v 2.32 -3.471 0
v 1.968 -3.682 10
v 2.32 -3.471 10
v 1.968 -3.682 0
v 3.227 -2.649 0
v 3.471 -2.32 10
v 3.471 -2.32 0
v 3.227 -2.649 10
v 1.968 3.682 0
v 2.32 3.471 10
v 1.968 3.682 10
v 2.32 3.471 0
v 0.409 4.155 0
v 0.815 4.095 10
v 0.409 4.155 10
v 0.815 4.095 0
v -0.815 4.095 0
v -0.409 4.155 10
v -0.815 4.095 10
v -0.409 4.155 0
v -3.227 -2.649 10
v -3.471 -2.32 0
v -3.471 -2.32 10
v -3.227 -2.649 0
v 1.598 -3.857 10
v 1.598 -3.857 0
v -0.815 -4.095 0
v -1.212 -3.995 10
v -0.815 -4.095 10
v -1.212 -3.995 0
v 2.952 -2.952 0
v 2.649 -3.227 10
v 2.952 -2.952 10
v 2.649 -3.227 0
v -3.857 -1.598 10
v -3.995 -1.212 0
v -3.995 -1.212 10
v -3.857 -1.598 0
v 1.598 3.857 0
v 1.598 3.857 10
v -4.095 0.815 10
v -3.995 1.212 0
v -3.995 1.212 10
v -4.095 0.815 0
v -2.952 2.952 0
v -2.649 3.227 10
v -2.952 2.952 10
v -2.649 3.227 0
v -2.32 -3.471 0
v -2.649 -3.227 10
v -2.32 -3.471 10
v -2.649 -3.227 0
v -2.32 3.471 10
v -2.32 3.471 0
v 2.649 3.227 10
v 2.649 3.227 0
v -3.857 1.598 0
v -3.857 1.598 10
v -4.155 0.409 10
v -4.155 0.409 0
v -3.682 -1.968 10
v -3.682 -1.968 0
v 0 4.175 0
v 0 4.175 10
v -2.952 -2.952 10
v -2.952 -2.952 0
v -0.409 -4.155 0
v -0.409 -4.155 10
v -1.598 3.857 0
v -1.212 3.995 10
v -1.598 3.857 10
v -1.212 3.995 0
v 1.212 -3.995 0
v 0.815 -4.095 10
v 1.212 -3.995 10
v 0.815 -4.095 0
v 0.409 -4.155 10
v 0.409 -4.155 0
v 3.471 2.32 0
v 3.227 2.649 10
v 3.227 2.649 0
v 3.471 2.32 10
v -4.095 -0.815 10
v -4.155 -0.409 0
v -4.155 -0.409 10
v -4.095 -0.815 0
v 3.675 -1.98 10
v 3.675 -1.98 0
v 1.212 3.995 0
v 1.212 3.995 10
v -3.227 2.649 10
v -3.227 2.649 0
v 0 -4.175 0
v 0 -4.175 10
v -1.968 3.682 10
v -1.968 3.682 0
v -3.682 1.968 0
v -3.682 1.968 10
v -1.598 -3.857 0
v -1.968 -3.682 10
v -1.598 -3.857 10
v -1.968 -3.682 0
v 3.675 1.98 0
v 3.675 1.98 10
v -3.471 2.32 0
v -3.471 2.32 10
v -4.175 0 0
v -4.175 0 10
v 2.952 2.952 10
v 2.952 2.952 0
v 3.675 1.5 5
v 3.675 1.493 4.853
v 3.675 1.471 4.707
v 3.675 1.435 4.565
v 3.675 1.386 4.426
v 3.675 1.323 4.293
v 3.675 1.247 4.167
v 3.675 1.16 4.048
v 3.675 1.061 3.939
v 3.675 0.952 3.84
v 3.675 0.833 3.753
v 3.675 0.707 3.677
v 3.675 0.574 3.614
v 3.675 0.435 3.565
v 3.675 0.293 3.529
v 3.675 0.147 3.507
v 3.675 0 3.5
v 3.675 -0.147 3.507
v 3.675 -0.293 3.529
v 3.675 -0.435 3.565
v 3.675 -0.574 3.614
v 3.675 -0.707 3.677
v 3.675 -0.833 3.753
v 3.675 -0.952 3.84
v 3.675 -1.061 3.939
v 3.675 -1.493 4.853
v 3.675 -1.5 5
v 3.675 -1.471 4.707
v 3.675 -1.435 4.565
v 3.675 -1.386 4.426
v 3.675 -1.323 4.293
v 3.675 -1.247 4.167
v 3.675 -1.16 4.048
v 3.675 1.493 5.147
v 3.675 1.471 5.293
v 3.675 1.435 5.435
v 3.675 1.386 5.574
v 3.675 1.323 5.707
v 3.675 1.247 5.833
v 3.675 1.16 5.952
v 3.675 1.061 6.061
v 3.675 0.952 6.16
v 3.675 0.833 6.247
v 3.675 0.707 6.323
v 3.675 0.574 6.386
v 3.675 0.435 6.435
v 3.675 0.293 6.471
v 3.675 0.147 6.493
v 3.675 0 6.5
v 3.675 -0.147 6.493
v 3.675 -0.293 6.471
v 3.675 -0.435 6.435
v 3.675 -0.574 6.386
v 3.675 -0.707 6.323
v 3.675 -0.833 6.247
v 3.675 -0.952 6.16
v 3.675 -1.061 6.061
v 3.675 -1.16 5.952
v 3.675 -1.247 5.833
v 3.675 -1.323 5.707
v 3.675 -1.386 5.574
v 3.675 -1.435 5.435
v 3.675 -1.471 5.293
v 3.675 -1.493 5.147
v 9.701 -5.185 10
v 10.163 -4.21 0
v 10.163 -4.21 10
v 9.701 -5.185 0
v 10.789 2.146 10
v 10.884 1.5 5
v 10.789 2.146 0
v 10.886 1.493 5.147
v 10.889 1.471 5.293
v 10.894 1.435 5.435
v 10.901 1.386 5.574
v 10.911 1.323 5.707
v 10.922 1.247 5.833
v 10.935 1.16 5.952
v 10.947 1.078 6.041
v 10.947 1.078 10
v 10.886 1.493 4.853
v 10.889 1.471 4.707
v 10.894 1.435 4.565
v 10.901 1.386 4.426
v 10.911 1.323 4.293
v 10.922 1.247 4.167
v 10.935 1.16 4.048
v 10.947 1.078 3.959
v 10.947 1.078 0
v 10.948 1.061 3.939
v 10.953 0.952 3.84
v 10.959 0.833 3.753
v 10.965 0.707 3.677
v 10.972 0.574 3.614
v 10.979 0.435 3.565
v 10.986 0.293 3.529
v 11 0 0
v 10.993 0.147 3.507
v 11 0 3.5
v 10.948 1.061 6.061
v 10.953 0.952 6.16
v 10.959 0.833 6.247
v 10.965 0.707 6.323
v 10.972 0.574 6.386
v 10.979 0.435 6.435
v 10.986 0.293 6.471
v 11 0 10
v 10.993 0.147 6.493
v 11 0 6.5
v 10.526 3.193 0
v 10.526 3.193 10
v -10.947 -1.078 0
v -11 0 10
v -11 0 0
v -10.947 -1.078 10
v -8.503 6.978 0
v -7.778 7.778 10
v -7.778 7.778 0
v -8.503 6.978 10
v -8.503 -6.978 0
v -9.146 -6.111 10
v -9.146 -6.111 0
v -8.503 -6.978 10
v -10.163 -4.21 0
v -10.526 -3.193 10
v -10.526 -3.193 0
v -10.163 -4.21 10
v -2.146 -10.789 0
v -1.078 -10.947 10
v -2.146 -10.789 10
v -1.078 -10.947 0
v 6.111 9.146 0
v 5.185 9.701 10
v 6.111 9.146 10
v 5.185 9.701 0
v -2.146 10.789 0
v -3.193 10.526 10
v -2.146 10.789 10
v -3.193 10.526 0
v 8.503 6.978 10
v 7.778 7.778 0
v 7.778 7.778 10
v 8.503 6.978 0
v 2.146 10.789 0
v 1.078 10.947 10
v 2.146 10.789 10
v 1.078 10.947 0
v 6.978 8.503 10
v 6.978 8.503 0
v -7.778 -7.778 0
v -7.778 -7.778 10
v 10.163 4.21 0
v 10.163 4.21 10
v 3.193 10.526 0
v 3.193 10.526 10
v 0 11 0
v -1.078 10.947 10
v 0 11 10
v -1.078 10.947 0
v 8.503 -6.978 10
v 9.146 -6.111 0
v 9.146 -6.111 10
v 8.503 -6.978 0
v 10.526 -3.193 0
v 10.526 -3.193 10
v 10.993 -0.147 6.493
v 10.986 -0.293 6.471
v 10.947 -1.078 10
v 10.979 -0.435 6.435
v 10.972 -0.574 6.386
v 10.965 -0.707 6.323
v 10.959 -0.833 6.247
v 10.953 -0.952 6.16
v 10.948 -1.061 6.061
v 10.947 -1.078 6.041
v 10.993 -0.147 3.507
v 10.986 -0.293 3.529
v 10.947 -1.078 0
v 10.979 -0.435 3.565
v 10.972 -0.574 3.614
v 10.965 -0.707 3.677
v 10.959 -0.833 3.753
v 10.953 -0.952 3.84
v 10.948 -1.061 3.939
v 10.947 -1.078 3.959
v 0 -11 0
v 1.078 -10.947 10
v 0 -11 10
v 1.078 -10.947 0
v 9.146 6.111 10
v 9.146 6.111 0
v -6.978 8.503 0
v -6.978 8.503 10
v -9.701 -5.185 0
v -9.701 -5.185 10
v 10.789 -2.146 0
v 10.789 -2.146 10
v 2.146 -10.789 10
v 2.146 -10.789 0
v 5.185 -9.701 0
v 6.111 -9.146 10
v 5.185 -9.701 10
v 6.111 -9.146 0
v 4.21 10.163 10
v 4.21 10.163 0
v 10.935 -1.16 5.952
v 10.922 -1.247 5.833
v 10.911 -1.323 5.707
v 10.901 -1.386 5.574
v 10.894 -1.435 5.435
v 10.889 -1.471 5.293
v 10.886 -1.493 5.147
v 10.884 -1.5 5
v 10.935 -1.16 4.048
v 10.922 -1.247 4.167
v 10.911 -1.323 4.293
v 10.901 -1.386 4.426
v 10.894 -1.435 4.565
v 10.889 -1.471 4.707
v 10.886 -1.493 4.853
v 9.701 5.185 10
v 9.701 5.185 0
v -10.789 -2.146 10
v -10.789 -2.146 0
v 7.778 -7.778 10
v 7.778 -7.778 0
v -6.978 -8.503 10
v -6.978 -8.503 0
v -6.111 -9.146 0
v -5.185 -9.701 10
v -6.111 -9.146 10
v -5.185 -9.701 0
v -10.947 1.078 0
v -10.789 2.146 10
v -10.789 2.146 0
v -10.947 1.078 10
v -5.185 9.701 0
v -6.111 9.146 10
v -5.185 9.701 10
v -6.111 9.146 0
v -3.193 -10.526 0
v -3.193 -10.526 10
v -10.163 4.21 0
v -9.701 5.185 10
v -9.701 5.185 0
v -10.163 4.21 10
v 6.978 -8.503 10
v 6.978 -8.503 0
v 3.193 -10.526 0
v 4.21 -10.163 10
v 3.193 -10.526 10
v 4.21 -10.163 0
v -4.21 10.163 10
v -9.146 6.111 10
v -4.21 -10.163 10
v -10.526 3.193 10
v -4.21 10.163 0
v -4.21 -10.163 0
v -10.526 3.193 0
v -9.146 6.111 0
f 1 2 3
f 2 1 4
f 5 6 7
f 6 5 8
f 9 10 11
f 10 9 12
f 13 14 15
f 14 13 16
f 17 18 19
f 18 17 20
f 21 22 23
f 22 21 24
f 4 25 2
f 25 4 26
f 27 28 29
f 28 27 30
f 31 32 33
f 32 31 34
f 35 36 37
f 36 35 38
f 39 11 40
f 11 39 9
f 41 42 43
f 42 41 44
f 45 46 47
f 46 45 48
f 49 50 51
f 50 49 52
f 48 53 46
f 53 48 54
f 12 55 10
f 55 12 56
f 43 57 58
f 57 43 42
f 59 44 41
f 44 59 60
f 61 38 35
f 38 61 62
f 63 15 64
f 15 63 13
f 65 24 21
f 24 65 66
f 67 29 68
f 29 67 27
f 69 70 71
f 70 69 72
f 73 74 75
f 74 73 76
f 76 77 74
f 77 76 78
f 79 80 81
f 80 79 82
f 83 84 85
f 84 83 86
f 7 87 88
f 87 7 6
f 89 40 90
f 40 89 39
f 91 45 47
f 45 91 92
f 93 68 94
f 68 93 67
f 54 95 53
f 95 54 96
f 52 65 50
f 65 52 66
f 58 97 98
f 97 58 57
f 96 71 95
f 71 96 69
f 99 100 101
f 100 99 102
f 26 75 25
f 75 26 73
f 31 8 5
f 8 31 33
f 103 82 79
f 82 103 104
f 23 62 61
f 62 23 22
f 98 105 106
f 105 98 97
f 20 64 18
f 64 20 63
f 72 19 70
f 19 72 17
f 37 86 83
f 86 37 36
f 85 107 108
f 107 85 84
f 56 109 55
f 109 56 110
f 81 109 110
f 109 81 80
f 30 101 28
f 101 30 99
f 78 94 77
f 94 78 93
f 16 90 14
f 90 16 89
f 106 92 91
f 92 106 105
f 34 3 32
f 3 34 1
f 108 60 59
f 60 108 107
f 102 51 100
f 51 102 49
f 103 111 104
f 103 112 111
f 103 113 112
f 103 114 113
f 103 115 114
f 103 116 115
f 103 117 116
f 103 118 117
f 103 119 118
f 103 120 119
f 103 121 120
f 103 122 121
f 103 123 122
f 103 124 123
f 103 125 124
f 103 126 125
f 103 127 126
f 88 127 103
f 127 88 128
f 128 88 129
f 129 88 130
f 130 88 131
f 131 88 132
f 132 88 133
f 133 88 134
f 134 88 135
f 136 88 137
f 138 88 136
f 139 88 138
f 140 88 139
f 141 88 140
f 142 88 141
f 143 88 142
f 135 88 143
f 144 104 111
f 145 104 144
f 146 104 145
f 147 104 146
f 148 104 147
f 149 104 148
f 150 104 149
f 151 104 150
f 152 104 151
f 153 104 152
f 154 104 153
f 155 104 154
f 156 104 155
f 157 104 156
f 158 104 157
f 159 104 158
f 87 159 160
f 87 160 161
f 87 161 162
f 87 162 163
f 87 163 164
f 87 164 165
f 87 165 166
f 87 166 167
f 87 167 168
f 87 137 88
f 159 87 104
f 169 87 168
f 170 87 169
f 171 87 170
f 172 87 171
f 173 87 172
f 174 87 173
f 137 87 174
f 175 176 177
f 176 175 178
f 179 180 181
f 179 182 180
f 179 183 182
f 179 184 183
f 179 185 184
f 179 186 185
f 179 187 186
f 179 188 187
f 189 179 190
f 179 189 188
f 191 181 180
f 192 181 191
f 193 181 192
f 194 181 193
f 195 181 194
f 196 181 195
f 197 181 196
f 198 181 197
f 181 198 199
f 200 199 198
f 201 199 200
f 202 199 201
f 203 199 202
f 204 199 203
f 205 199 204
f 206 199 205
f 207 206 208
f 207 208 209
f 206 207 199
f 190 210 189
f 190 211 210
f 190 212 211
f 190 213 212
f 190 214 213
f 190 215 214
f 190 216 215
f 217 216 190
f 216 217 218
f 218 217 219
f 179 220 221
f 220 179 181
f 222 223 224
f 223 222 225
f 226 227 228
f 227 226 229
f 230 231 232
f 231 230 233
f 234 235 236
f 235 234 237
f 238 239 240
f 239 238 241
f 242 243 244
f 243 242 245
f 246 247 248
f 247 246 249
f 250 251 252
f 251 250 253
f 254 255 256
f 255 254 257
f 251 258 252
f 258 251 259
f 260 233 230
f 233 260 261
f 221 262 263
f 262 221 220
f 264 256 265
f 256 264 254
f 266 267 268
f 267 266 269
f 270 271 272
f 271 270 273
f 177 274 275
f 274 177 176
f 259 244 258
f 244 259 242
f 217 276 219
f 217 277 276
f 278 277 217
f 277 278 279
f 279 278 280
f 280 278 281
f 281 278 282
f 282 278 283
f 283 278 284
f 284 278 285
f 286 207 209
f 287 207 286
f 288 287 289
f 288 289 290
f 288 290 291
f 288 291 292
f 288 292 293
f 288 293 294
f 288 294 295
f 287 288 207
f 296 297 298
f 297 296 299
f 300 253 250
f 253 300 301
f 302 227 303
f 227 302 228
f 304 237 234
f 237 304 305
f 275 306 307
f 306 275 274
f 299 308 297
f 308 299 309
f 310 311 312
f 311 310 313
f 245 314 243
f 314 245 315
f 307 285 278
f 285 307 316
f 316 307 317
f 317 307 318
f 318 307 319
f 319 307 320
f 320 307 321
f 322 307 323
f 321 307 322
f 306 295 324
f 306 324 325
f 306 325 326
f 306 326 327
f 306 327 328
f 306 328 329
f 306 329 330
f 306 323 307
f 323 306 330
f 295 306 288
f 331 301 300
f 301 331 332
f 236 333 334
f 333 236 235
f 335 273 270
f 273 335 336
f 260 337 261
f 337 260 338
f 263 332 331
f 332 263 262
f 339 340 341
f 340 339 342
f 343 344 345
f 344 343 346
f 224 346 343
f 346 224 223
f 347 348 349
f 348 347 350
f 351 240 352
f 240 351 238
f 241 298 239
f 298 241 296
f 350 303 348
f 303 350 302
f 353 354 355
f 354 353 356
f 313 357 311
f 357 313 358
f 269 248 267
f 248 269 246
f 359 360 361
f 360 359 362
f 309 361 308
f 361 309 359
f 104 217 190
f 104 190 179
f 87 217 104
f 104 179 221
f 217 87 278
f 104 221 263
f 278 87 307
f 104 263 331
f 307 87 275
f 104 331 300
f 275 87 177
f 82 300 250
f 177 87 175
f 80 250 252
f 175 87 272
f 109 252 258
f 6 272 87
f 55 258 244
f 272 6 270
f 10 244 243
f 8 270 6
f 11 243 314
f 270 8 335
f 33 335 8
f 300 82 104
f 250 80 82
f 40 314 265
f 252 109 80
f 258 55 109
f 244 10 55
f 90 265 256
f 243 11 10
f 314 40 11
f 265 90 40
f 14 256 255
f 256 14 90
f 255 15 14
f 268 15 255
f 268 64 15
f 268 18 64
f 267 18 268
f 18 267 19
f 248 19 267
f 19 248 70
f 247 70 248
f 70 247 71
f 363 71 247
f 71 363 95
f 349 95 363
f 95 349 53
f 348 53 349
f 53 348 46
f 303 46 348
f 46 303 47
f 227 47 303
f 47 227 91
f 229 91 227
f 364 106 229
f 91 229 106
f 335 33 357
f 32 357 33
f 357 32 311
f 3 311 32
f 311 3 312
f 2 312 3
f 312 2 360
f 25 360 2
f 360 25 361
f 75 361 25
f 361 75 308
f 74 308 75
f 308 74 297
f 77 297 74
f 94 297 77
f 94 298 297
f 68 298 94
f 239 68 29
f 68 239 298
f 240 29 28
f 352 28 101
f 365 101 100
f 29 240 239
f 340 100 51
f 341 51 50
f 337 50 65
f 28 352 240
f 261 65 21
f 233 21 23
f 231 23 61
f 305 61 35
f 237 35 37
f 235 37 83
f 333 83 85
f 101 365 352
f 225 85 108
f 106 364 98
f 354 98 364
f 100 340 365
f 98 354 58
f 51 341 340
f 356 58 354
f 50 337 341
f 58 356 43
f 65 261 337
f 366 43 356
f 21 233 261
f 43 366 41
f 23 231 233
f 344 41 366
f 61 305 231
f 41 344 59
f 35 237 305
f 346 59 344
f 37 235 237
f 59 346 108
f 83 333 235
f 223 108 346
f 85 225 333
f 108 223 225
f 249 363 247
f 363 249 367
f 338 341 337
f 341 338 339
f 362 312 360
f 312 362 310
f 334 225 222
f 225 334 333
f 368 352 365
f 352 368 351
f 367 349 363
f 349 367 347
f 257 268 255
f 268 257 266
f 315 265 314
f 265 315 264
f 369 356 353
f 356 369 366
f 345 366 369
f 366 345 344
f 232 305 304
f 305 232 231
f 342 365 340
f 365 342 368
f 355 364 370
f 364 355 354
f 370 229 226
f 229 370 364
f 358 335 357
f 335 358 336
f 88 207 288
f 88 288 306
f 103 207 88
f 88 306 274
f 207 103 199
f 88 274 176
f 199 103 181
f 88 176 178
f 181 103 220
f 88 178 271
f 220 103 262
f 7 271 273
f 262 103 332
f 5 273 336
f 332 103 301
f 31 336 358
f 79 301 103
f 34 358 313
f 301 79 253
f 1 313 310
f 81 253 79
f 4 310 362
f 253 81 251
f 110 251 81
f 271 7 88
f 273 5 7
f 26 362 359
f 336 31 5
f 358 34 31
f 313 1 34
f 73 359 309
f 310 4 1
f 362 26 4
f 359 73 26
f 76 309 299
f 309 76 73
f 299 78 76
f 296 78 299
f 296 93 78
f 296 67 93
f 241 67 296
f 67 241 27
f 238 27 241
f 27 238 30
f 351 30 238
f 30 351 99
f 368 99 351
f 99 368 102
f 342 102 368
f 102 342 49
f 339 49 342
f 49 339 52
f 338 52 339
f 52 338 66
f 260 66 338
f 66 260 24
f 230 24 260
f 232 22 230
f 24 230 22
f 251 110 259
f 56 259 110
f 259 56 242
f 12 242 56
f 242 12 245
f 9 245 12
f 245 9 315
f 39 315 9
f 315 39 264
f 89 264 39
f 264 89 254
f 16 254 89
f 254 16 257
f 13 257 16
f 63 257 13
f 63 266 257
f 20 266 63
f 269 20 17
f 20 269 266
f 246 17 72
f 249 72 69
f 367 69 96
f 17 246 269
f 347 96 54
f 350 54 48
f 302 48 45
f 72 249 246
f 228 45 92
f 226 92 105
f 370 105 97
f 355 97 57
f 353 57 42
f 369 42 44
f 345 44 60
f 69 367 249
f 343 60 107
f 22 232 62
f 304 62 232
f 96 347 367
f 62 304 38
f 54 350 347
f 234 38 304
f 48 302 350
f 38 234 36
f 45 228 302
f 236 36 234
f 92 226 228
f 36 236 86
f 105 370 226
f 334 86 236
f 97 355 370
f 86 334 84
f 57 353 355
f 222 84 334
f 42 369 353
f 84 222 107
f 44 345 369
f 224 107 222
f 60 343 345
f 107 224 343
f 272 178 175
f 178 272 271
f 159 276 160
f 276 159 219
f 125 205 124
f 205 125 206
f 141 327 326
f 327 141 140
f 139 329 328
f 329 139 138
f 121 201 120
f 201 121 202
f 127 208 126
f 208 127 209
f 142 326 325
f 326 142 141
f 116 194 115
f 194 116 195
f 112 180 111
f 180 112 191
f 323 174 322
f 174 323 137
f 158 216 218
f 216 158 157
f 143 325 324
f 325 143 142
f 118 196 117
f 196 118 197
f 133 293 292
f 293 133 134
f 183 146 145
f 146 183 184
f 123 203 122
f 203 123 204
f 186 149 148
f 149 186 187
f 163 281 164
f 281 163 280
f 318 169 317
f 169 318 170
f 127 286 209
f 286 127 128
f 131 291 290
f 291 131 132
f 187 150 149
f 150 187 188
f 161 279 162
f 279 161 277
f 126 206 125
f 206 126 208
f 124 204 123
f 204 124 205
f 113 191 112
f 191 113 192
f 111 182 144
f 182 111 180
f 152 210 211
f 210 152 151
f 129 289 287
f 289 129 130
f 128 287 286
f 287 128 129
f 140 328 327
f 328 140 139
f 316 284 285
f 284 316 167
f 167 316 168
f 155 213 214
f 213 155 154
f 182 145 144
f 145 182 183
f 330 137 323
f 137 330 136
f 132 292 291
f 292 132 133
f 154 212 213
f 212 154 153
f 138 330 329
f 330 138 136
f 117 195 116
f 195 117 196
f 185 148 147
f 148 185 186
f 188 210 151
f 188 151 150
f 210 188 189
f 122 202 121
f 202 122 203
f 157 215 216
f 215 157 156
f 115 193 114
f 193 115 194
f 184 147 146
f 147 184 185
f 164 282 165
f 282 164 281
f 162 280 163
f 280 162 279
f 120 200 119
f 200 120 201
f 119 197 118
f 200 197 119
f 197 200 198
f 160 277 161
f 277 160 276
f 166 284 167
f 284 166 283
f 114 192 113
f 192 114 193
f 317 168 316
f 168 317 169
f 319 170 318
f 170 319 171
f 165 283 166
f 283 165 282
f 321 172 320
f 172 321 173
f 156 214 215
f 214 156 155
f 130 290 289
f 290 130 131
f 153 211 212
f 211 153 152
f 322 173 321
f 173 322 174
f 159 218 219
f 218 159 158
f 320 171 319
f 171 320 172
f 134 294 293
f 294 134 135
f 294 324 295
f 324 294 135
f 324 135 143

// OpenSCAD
// file: parameters.scad
// =============================================================================
// Gen-BC — nightly 2026-10-03 (physics_scorer, honest magpylib watts)
// Clocking 0 deg (magnets N facing S / through-magnetised stack) + D-flat keyed bore + index notch + flip-symmetric braces/bolts.
// Windable 2-piece bobbin; turns = physics_scorer turns_fit; copper only between flanges.
// former_web = 3.60 mm (taller copper vs Gen-BA 2.46) — gap grows with web (honest Bz tradeoff).
// =============================================================================
topology            = "mid_rotor";

// --- Wire / winding (physics_scorer winding-fit) -------------------------------
wire_awg            = 26;
wire_od             = 0.45;     // insulated OD mm (bare 0.405)
fill_realistic      = 0.60;     // insulated-wire area / window, hand-wound layered
turns               = 114;       // = physics_scorer turns_fit (do NOT raise)
coil_former_type    = "bobbin";
coil_core_inset     = 8.40;     // radial copper build: hub = copper boundary inset by this
wind_build_axial    = 0.0;      // nothing proud of the flanges
wind_build_radial   = 0.0;

// --- Bobbin (base + lid) ---------------------------------------------------------
coil_id_r           = 28.00;    // copper boundary sector (over the magnet track)
coil_od_r           = 52.00;
span_deg            = 32.42;    // = pitch - 2*asin((wall+0.85)/coil_id_r) -> >=1.2 mm stator web
former_web          = 3.60;     // copper height between flanges
flange_t            = 0.60;
wall                = 1.00;     // flange lip beyond copper
former_bare_h       = former_web + 2 * flange_t;
coil_envelope_h     = former_bare_h + 2 * wind_build_axial;
tab_w               = 7.0;
tab_len             = 7.0;
tab_h               = former_bare_h / 2;
pin_d               = 1.9;      // 1.75 mm filament locating pin
coil_mount_r        = coil_od_r + 0.2 + 4.0;
lead_y              = 1.6;
lead_slot_w         = 0.9;
lead_groove_d       = 0.6;

// --- Gap -------------------------------------------------------------------------
run_clear           = 0.50;     // rotor face -> flange
gap_spacer_h        = run_clear + wind_build_axial;
m2m                 = coil_envelope_h + 2 * run_clear;

// --- Stator ----------------------------------------------------------------------
coil_stations       = 9;        // per stator; x2 stators
bay_clear           = 0.25;
bay_depth           = former_bare_h;
stator_back_web     = 2.0;
stator_thick        = bay_depth + stator_back_web;
stator_od           = 160.0;
shaft_clear_stator  = 14.0;     // stator is static; shaft only

// --- Rotor(s) --------------------------------------------------------------------
magnet_Br           = 1.43;     // N52
halbach_magnetisation = "diametric"; // O5x5 assist magnets MUST be DIAMETRICALLY magnetised (tangential)
rotor_b_same_axis   = true;     // same-index magnets share one axis: N faces S across the gap
large_pocket_d      = 20.3;
small_pocket_d      = 5.3;
pocket_h            = 5.2;
large_n             = 8;
R_large             = 40.0;
R_small_inner       = 26.0;
R_small_mid         = 40.0;
R_small_outer       = 56.0;
carrier_od          = 158.0;
mid_carrier_thick   = 12.0;
hub_h               = 10.0;
hub_od              = 30.0;
rotor_b_offset_deg  = 0.0;      // CLOCKING: magnets directly opposite
shaft_key           = "dflat";
dflat_depth         = 0.5;      // 8 mm shaft with 0.5 mm flat (7.5 across flat)
index_notch_d       = 3.0;

// --- Modular MAX interface (Gen-E family) -----------------------------------------
shaft_bore          = 8.35;
dflat_x             = 4.0 - dflat_depth + (shaft_bore - 8.0) / 2;
bearing_d           = 21.85;
bearing_h           = 7.2;
m3_clear            = 3.5;
bolt_r_inner        = 18.0;
bolt_n_inner        = 4;
bolt_inner_angles   = [22.5, -22.5, 157.5, 202.5];  // between poles, flip-symmetric
flange_bolt_r       = 72.0;
flange_bolt_n       = 6;
brace_r             = 68.0;
brace_d             = 4.3;
brace_n             = 4;
brace_angles        = [45, 135, 225, 315];          // flip-symmetric

spacer_pad_od       = 14.0;
spacer_pad_id       = m3_clear;
endbell_od          = 160.0;
endbell_thick       = 8.0;
endbell_shaft_clear = 10.0;
plate_max_mm        = 410;

$fn = 64;
// main file
// Gen-BC — shaft collar with D-flat bore (set screw bears on the flat); print x2
include <parameters.scad>;
$fn = 64;
// D-flat keyed bore: flat faces +X (angle 0 = magnet pocket 0 = index notch)
module dflat_bore(h) {
    intersection() {
        cylinder(d=shaft_bore, h=h);
        translate([-shaft_bore, -shaft_bore, 0]) cube([shaft_bore + dflat_x, 2*shaft_bore, h]);
    }
}

od = 22; h = 10; set_d = 3.0;
difference() {
    cylinder(d=od, h=h);
    translate([0, 0, -0.1]) dflat_bore(h + 0.2);
    translate([0, 0, h/2]) rotate([0, 90, 0]) cylinder(d=set_d, h=od);
}
